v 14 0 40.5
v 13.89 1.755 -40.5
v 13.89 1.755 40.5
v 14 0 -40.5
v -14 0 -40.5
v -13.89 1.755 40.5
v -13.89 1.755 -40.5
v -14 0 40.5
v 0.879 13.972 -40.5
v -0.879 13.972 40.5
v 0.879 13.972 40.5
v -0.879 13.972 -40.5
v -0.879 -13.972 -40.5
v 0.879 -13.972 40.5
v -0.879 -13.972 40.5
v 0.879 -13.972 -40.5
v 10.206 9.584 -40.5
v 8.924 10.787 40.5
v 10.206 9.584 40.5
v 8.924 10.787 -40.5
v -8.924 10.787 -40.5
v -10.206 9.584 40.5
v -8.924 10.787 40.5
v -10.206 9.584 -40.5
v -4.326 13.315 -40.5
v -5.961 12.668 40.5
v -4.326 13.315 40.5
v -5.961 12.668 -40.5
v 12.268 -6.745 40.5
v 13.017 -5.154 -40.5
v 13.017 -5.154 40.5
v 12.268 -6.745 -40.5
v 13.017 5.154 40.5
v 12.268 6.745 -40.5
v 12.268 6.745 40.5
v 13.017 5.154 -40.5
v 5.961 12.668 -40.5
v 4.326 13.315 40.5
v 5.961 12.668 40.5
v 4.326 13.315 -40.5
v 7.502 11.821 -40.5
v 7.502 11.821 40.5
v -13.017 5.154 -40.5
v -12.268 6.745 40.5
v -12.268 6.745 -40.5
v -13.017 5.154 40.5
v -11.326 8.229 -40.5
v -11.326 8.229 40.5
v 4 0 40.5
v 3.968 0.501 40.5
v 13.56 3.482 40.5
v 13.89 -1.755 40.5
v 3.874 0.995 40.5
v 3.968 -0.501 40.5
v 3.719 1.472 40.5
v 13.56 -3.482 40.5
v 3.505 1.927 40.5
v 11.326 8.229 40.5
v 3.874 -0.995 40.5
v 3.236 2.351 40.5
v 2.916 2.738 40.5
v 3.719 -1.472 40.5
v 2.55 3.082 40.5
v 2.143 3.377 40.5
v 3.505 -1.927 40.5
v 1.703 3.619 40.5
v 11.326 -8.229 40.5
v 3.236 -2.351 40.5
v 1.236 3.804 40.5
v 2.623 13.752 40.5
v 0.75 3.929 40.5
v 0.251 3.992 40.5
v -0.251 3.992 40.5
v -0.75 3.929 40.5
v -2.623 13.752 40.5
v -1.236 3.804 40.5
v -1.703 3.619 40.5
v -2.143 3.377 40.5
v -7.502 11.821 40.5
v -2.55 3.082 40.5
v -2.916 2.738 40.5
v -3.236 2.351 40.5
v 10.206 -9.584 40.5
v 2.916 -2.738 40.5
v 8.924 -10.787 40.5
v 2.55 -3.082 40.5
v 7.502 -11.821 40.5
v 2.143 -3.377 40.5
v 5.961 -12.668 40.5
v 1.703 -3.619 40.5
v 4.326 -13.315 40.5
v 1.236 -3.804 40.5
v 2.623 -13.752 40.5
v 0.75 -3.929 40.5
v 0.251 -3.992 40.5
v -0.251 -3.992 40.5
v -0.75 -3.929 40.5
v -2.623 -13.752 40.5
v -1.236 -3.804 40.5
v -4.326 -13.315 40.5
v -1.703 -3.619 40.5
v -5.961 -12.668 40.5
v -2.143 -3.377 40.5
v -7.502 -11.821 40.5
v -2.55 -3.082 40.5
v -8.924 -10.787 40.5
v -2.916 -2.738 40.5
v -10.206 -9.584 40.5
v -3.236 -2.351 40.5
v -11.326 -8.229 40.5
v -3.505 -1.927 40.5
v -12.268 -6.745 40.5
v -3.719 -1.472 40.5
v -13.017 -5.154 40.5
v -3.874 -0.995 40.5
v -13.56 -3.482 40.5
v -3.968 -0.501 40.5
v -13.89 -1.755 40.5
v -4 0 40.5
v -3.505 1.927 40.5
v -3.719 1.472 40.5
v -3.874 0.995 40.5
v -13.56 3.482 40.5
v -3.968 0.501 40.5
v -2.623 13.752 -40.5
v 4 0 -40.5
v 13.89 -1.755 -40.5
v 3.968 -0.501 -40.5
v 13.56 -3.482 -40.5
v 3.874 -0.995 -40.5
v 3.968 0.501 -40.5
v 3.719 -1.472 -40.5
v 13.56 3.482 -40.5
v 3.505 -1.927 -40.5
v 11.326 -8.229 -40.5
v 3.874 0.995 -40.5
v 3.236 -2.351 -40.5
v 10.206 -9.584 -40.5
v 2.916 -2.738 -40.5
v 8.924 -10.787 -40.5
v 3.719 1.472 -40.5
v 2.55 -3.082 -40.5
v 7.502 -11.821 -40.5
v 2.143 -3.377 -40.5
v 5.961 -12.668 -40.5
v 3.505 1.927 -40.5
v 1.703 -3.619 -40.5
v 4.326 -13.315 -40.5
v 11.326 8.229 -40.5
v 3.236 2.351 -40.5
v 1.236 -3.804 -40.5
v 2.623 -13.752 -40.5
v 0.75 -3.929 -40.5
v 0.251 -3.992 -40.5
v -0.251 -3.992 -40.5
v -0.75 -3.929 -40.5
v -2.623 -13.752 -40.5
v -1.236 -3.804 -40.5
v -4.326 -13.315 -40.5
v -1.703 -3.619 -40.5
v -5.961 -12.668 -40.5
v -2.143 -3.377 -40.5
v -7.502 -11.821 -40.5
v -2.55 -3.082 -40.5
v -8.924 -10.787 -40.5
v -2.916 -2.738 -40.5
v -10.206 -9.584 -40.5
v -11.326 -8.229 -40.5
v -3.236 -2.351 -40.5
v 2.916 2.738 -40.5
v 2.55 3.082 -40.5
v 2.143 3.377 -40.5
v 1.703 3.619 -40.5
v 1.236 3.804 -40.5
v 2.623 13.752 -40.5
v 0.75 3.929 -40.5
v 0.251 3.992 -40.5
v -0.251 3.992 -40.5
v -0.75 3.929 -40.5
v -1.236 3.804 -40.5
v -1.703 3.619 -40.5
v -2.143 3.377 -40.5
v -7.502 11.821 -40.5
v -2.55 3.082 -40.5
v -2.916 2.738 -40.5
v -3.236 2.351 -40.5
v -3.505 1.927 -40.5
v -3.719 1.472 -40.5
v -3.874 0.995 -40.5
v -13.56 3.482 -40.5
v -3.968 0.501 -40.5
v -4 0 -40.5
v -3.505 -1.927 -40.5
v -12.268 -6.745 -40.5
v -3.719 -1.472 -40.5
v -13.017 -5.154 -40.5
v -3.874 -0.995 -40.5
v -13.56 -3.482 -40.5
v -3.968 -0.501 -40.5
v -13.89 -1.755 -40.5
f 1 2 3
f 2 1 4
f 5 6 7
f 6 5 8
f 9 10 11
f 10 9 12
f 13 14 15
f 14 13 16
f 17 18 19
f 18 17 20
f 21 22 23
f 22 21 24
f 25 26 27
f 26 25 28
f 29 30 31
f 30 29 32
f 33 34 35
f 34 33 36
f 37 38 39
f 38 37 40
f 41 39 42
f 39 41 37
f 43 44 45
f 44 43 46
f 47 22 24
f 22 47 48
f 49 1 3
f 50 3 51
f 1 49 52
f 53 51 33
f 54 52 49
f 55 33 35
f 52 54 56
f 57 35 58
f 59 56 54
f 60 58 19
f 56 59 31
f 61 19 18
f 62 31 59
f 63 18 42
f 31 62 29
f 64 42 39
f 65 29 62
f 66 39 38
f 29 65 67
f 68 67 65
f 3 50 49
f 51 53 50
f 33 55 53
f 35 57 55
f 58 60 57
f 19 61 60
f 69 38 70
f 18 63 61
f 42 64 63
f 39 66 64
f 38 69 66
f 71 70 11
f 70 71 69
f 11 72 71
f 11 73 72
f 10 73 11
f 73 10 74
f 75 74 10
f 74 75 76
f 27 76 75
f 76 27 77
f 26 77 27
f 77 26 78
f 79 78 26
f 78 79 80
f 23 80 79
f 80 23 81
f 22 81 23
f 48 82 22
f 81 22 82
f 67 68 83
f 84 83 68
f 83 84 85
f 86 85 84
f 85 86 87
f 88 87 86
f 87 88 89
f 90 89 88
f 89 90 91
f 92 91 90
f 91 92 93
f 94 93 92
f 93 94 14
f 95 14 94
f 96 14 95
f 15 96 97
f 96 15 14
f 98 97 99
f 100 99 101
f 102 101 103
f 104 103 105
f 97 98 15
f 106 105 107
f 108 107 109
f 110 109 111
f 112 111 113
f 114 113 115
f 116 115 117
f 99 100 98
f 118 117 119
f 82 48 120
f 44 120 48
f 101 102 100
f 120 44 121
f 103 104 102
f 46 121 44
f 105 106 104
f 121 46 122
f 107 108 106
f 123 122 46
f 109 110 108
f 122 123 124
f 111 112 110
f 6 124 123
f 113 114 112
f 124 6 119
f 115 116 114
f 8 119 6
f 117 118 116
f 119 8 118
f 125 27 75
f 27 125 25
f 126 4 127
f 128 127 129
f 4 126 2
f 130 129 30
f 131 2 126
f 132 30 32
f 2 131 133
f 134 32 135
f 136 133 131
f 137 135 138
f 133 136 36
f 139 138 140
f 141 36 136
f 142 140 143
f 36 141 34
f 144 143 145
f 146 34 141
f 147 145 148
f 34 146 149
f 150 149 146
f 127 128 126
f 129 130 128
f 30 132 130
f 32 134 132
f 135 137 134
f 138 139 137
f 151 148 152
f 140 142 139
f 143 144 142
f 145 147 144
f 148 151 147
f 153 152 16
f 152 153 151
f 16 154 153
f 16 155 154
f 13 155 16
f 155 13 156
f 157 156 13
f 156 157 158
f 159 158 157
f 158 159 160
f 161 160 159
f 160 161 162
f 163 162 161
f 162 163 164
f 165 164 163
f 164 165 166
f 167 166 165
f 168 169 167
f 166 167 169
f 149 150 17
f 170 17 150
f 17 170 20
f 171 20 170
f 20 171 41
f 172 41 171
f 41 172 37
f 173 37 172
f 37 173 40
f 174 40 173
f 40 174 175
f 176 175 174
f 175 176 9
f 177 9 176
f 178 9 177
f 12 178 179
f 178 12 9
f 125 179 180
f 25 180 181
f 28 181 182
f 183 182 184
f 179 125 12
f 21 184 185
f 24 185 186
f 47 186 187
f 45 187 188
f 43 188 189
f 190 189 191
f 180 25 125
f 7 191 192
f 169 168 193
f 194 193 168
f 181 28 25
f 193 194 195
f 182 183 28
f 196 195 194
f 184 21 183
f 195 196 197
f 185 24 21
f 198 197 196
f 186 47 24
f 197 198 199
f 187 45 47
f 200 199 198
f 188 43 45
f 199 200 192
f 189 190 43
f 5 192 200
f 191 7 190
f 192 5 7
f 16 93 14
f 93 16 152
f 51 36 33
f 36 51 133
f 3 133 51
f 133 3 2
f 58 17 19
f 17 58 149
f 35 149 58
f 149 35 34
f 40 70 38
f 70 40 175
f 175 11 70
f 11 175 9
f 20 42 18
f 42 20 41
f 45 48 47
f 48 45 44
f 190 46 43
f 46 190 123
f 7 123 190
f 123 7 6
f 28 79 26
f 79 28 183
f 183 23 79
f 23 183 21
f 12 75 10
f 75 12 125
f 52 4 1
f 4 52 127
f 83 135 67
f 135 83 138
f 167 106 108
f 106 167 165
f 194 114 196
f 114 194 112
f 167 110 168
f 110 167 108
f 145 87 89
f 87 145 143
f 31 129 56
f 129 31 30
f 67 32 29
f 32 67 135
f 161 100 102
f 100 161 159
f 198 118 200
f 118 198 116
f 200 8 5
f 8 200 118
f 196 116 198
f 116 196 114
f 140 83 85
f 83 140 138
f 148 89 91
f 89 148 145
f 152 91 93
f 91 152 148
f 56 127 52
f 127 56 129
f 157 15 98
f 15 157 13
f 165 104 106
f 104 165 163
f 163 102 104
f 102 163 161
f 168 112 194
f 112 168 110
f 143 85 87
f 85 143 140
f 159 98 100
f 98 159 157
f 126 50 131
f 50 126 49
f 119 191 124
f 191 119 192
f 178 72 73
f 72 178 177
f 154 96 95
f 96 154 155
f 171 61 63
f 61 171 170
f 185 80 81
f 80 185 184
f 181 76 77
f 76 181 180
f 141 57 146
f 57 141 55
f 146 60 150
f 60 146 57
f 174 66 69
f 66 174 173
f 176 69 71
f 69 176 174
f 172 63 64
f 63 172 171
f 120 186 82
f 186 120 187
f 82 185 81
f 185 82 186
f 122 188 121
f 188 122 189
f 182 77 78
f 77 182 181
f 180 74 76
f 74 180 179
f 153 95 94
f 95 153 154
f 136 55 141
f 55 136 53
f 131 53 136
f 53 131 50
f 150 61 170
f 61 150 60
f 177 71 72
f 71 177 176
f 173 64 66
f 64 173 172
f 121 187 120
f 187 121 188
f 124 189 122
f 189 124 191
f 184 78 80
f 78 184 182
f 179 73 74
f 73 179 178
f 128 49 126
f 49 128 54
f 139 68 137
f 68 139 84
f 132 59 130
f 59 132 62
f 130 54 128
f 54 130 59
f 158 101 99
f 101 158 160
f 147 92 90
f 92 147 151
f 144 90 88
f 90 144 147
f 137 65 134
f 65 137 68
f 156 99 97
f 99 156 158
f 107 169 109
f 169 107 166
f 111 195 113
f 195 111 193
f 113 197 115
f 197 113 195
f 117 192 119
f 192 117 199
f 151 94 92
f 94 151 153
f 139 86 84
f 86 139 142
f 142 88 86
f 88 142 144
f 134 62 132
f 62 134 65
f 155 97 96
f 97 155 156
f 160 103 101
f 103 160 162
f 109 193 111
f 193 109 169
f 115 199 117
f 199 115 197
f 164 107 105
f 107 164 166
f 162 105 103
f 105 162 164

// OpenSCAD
$fn = 50;


difference() {
	union() {
		translate(v = [0, 0, -40.5000000000]) {
			cylinder(h = 81, r = 14.0000000000);
		}
	}
	union() {
		translate(v = [0, 0, -100.0000000000]) {
			cylinder(h = 200, r = 4.0000000000);
		}
	}
}
